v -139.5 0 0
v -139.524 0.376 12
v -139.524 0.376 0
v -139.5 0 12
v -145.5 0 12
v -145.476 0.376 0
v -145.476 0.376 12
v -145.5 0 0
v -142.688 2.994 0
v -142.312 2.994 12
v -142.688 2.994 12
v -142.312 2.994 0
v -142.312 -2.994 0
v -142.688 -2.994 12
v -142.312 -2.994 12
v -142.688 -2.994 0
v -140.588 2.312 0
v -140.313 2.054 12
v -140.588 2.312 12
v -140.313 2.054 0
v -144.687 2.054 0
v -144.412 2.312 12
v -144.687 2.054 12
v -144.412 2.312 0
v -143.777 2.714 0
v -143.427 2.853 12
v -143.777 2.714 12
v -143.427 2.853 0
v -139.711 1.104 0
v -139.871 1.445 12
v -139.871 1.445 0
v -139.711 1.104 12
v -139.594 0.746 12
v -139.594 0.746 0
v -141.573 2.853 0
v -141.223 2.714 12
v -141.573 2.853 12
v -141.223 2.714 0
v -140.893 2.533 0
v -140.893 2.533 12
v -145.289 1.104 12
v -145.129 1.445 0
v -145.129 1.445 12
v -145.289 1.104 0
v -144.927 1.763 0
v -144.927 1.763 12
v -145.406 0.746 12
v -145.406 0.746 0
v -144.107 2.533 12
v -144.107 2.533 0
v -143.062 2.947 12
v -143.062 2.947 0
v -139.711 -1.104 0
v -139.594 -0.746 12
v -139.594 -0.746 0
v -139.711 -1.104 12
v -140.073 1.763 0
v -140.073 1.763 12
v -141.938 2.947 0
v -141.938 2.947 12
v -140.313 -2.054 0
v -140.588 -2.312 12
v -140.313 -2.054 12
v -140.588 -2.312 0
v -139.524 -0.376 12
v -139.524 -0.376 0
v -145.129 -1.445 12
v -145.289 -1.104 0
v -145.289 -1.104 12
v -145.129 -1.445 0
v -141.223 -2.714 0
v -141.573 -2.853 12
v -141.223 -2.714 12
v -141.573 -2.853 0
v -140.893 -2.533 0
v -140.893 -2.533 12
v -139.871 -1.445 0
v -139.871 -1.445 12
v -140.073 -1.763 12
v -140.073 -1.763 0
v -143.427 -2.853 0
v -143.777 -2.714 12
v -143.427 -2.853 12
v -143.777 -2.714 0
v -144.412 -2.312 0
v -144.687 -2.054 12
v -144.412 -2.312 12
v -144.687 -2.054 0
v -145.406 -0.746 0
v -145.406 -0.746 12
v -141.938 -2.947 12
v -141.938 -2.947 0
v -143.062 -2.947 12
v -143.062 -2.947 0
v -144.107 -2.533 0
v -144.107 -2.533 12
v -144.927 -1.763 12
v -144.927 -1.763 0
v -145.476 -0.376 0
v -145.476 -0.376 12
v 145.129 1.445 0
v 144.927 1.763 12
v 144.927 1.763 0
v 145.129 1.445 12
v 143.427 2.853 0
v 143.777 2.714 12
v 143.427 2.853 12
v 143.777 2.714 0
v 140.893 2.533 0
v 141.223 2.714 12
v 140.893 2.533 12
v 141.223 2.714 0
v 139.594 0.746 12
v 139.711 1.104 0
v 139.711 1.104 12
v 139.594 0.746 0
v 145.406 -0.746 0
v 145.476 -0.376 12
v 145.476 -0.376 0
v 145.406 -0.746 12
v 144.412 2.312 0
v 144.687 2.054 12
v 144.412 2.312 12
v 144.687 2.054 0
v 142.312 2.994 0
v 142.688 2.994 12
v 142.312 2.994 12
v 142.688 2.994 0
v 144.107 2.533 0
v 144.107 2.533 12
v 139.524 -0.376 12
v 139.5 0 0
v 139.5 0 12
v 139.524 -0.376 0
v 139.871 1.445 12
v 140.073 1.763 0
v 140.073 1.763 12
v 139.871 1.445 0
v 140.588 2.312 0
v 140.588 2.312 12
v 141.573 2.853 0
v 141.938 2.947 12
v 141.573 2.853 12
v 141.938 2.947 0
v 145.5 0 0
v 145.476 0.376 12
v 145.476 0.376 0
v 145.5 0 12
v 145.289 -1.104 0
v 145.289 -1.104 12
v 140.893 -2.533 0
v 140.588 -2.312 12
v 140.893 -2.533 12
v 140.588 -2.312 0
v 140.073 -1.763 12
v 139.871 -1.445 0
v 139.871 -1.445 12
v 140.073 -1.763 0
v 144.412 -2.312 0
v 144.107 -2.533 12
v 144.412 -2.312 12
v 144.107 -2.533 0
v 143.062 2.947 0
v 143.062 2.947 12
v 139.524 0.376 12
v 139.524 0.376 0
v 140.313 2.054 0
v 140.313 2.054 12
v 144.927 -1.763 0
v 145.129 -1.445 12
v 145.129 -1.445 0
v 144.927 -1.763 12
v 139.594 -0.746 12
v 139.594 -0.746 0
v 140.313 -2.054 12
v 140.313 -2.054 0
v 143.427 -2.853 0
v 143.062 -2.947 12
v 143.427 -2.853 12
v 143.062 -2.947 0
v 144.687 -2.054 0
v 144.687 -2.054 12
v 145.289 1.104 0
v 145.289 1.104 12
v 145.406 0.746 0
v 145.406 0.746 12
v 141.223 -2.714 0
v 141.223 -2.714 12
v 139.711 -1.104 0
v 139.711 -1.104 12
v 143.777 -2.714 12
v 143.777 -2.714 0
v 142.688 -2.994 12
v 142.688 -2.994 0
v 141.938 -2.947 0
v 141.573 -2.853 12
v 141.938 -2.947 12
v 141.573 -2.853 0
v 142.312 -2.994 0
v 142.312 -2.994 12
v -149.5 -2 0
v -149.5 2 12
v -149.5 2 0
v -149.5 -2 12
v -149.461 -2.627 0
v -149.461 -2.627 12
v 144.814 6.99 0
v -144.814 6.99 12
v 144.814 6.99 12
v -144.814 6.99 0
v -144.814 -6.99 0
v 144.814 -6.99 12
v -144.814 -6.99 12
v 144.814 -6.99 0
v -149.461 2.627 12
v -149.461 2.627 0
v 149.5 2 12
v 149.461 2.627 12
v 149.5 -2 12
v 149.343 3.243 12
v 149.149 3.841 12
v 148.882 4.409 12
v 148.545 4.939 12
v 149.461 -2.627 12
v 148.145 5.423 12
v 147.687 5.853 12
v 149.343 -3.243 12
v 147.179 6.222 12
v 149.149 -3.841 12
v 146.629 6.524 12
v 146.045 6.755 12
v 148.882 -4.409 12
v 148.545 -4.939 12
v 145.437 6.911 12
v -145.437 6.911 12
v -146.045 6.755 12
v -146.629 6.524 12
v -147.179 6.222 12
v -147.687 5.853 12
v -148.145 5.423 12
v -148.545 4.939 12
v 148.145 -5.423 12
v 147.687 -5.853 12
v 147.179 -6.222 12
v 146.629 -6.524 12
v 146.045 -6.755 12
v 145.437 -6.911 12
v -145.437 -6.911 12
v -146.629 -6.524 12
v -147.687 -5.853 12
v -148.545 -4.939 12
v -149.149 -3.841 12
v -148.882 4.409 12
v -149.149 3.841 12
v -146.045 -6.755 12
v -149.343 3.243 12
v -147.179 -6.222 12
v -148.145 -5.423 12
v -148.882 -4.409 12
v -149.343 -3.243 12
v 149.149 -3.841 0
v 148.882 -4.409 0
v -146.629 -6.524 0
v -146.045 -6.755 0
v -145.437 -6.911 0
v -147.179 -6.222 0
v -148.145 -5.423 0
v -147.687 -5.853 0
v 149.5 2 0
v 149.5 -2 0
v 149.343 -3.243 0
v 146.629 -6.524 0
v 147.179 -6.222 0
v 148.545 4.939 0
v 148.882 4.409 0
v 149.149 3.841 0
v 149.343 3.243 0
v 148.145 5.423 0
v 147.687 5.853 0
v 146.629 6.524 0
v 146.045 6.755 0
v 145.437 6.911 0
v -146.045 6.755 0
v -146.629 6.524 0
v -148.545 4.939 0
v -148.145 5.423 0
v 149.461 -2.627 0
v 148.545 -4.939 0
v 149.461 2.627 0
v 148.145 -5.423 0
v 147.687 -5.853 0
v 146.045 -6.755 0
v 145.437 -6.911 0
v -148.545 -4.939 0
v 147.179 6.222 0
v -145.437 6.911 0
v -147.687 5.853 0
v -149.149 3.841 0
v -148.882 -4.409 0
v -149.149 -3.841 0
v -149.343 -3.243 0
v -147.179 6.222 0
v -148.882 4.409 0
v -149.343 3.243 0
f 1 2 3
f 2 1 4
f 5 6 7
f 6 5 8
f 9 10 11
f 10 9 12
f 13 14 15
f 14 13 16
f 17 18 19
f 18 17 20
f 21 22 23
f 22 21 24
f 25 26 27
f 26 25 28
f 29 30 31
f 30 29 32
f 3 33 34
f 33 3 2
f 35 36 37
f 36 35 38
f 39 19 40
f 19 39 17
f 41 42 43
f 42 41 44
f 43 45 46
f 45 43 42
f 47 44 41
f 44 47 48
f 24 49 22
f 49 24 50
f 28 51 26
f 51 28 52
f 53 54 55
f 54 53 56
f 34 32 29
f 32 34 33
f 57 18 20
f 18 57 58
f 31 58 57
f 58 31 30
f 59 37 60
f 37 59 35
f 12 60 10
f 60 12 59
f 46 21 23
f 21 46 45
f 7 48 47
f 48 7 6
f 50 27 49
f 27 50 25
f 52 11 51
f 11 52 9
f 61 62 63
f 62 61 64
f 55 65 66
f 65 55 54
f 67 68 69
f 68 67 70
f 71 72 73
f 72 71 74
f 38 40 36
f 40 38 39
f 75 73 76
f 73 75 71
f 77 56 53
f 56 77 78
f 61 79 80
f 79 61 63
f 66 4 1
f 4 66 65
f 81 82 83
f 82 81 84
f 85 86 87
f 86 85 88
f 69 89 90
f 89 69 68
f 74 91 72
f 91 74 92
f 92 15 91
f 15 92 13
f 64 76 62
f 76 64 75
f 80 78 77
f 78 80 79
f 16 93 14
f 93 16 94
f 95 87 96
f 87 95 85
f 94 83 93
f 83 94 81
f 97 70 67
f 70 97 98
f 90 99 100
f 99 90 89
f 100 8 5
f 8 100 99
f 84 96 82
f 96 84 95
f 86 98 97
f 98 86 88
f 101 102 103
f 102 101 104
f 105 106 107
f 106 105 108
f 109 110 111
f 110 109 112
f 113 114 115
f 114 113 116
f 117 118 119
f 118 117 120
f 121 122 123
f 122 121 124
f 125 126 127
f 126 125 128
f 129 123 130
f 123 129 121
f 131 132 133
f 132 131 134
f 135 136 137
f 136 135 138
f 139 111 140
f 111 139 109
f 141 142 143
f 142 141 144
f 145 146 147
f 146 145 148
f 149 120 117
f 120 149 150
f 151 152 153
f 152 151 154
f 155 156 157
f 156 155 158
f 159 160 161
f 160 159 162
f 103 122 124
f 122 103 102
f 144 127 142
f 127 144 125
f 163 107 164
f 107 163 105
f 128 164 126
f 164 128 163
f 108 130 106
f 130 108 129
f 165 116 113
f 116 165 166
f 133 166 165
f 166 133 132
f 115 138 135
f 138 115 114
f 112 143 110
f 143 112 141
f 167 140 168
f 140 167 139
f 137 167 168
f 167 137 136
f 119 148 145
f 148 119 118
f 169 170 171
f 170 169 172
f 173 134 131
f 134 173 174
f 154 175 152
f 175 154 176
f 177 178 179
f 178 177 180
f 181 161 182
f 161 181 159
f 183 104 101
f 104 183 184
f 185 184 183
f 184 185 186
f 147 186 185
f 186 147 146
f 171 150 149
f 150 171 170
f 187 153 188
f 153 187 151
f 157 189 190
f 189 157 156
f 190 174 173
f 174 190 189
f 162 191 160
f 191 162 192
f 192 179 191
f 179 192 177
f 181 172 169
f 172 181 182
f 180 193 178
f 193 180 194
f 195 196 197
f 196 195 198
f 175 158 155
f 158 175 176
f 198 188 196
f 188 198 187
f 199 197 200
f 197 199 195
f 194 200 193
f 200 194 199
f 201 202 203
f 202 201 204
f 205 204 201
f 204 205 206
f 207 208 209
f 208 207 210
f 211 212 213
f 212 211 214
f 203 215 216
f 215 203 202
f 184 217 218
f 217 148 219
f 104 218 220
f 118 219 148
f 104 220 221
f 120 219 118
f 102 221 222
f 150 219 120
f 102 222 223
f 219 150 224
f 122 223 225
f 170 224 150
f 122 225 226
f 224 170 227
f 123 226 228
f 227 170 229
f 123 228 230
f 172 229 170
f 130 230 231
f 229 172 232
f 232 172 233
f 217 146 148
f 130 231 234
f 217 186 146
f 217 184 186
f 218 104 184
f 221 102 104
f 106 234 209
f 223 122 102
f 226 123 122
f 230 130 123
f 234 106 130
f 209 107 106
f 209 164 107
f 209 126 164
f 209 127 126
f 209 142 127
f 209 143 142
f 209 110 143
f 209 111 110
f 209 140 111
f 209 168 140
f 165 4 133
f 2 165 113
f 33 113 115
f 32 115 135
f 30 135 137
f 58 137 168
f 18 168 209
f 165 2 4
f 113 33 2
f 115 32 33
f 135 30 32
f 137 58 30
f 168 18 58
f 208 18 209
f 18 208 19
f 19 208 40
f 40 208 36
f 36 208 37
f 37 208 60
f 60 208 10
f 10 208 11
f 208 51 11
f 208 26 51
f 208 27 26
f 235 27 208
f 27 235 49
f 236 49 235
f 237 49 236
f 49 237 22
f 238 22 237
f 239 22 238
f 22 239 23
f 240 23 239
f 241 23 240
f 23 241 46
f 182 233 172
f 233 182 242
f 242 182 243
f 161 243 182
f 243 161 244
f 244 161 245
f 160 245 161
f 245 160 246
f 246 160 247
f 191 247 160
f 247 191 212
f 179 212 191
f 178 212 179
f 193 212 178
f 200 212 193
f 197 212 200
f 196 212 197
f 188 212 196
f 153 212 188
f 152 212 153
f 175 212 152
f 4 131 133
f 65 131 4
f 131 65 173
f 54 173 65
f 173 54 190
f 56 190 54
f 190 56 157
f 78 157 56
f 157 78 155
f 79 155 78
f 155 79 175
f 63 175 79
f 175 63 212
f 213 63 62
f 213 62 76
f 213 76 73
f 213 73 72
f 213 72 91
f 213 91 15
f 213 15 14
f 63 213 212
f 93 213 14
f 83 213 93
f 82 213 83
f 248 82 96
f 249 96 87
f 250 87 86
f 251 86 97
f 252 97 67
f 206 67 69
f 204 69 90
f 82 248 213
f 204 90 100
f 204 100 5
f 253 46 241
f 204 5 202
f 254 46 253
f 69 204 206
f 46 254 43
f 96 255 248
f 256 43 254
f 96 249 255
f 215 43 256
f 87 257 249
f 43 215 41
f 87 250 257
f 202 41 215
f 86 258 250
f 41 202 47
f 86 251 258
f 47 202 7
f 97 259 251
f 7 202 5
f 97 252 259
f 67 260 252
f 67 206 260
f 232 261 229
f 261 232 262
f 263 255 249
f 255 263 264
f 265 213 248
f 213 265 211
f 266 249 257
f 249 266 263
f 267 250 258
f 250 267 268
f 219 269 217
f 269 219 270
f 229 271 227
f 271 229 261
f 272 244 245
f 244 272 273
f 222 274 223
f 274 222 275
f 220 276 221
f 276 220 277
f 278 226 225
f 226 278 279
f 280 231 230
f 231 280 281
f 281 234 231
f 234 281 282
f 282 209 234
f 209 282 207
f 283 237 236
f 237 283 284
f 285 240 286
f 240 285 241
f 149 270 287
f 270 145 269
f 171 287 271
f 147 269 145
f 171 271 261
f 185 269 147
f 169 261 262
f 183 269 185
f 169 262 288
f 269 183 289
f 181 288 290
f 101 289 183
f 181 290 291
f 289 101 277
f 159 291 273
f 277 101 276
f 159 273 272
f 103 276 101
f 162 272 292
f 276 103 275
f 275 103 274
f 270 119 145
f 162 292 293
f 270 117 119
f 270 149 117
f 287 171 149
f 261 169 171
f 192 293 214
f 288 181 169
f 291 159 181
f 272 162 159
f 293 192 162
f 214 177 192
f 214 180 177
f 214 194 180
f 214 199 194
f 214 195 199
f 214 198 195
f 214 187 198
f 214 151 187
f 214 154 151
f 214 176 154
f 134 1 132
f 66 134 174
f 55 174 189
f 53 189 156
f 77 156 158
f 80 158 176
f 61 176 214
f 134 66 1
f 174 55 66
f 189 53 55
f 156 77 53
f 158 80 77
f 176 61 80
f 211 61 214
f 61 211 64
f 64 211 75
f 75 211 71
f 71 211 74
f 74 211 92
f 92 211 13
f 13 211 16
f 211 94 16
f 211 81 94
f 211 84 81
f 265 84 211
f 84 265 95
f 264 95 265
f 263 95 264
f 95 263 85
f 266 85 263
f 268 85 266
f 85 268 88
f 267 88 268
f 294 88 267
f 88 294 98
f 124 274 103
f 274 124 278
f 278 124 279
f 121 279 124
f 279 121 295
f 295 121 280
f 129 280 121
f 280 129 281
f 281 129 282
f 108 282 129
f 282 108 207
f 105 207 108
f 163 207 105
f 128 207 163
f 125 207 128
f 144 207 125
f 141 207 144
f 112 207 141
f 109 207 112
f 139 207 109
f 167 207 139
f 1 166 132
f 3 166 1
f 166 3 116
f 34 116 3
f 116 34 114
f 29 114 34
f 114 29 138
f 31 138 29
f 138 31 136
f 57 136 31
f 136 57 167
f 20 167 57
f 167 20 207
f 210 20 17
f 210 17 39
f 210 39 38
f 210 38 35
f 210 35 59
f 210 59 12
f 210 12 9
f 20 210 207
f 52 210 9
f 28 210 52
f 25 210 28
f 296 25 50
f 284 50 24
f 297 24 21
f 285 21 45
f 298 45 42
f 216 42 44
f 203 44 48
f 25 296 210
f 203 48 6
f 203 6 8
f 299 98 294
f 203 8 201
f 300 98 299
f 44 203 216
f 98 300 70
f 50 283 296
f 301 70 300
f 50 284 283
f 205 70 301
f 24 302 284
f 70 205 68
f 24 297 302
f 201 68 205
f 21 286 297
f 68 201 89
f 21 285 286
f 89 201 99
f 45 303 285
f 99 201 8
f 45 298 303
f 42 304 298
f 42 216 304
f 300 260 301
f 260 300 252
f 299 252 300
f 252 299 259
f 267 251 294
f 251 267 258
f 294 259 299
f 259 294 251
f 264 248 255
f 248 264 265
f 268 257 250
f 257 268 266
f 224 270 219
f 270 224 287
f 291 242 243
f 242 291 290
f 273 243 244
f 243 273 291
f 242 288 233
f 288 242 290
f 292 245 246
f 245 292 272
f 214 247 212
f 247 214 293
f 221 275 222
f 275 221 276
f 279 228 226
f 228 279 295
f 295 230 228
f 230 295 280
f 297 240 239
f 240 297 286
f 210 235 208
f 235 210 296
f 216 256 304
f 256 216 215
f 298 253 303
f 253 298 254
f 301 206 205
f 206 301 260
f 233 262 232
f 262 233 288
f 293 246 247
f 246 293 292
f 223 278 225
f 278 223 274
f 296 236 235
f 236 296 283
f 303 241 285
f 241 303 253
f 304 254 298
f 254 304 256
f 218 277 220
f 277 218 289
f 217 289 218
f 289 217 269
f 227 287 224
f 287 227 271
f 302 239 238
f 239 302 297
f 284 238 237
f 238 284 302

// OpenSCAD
$fn = 50;


difference() {
	union() {
		hull() {
			translate(v = [-144.5000000000, 2.0000000000, 0]) {
				cylinder(h = 12, r = 5);
			}
			translate(v = [144.5000000000, 2.0000000000, 0]) {
				cylinder(h = 12, r = 5);
			}
			translate(v = [-144.5000000000, -2.0000000000, 0]) {
				cylinder(h = 12, r = 5);
			}
			translate(v = [144.5000000000, -2.0000000000, 0]) {
				cylinder(h = 12, r = 5);
			}
		}
	}
	union() {
		translate(v = [-142.5000000000, 0.0000000000, -100.0000000000]) {
			cylinder(h = 200, r = 3.0000000000);
		}
		translate(v = [-142.5000000000, 0.0000000000, -100.0000000000]) {
			cylinder(h = 200, r = 3.0000000000);
		}
		translate(v = [142.5000000000, 0.0000000000, -100.0000000000]) {
			cylinder(h = 200, r = 3.0000000000);
		}
		translate(v = [142.5000000000, 0.0000000000, -100.0000000000]) {
			cylinder(h = 200, r = 3.0000000000);
		}
	}
}
